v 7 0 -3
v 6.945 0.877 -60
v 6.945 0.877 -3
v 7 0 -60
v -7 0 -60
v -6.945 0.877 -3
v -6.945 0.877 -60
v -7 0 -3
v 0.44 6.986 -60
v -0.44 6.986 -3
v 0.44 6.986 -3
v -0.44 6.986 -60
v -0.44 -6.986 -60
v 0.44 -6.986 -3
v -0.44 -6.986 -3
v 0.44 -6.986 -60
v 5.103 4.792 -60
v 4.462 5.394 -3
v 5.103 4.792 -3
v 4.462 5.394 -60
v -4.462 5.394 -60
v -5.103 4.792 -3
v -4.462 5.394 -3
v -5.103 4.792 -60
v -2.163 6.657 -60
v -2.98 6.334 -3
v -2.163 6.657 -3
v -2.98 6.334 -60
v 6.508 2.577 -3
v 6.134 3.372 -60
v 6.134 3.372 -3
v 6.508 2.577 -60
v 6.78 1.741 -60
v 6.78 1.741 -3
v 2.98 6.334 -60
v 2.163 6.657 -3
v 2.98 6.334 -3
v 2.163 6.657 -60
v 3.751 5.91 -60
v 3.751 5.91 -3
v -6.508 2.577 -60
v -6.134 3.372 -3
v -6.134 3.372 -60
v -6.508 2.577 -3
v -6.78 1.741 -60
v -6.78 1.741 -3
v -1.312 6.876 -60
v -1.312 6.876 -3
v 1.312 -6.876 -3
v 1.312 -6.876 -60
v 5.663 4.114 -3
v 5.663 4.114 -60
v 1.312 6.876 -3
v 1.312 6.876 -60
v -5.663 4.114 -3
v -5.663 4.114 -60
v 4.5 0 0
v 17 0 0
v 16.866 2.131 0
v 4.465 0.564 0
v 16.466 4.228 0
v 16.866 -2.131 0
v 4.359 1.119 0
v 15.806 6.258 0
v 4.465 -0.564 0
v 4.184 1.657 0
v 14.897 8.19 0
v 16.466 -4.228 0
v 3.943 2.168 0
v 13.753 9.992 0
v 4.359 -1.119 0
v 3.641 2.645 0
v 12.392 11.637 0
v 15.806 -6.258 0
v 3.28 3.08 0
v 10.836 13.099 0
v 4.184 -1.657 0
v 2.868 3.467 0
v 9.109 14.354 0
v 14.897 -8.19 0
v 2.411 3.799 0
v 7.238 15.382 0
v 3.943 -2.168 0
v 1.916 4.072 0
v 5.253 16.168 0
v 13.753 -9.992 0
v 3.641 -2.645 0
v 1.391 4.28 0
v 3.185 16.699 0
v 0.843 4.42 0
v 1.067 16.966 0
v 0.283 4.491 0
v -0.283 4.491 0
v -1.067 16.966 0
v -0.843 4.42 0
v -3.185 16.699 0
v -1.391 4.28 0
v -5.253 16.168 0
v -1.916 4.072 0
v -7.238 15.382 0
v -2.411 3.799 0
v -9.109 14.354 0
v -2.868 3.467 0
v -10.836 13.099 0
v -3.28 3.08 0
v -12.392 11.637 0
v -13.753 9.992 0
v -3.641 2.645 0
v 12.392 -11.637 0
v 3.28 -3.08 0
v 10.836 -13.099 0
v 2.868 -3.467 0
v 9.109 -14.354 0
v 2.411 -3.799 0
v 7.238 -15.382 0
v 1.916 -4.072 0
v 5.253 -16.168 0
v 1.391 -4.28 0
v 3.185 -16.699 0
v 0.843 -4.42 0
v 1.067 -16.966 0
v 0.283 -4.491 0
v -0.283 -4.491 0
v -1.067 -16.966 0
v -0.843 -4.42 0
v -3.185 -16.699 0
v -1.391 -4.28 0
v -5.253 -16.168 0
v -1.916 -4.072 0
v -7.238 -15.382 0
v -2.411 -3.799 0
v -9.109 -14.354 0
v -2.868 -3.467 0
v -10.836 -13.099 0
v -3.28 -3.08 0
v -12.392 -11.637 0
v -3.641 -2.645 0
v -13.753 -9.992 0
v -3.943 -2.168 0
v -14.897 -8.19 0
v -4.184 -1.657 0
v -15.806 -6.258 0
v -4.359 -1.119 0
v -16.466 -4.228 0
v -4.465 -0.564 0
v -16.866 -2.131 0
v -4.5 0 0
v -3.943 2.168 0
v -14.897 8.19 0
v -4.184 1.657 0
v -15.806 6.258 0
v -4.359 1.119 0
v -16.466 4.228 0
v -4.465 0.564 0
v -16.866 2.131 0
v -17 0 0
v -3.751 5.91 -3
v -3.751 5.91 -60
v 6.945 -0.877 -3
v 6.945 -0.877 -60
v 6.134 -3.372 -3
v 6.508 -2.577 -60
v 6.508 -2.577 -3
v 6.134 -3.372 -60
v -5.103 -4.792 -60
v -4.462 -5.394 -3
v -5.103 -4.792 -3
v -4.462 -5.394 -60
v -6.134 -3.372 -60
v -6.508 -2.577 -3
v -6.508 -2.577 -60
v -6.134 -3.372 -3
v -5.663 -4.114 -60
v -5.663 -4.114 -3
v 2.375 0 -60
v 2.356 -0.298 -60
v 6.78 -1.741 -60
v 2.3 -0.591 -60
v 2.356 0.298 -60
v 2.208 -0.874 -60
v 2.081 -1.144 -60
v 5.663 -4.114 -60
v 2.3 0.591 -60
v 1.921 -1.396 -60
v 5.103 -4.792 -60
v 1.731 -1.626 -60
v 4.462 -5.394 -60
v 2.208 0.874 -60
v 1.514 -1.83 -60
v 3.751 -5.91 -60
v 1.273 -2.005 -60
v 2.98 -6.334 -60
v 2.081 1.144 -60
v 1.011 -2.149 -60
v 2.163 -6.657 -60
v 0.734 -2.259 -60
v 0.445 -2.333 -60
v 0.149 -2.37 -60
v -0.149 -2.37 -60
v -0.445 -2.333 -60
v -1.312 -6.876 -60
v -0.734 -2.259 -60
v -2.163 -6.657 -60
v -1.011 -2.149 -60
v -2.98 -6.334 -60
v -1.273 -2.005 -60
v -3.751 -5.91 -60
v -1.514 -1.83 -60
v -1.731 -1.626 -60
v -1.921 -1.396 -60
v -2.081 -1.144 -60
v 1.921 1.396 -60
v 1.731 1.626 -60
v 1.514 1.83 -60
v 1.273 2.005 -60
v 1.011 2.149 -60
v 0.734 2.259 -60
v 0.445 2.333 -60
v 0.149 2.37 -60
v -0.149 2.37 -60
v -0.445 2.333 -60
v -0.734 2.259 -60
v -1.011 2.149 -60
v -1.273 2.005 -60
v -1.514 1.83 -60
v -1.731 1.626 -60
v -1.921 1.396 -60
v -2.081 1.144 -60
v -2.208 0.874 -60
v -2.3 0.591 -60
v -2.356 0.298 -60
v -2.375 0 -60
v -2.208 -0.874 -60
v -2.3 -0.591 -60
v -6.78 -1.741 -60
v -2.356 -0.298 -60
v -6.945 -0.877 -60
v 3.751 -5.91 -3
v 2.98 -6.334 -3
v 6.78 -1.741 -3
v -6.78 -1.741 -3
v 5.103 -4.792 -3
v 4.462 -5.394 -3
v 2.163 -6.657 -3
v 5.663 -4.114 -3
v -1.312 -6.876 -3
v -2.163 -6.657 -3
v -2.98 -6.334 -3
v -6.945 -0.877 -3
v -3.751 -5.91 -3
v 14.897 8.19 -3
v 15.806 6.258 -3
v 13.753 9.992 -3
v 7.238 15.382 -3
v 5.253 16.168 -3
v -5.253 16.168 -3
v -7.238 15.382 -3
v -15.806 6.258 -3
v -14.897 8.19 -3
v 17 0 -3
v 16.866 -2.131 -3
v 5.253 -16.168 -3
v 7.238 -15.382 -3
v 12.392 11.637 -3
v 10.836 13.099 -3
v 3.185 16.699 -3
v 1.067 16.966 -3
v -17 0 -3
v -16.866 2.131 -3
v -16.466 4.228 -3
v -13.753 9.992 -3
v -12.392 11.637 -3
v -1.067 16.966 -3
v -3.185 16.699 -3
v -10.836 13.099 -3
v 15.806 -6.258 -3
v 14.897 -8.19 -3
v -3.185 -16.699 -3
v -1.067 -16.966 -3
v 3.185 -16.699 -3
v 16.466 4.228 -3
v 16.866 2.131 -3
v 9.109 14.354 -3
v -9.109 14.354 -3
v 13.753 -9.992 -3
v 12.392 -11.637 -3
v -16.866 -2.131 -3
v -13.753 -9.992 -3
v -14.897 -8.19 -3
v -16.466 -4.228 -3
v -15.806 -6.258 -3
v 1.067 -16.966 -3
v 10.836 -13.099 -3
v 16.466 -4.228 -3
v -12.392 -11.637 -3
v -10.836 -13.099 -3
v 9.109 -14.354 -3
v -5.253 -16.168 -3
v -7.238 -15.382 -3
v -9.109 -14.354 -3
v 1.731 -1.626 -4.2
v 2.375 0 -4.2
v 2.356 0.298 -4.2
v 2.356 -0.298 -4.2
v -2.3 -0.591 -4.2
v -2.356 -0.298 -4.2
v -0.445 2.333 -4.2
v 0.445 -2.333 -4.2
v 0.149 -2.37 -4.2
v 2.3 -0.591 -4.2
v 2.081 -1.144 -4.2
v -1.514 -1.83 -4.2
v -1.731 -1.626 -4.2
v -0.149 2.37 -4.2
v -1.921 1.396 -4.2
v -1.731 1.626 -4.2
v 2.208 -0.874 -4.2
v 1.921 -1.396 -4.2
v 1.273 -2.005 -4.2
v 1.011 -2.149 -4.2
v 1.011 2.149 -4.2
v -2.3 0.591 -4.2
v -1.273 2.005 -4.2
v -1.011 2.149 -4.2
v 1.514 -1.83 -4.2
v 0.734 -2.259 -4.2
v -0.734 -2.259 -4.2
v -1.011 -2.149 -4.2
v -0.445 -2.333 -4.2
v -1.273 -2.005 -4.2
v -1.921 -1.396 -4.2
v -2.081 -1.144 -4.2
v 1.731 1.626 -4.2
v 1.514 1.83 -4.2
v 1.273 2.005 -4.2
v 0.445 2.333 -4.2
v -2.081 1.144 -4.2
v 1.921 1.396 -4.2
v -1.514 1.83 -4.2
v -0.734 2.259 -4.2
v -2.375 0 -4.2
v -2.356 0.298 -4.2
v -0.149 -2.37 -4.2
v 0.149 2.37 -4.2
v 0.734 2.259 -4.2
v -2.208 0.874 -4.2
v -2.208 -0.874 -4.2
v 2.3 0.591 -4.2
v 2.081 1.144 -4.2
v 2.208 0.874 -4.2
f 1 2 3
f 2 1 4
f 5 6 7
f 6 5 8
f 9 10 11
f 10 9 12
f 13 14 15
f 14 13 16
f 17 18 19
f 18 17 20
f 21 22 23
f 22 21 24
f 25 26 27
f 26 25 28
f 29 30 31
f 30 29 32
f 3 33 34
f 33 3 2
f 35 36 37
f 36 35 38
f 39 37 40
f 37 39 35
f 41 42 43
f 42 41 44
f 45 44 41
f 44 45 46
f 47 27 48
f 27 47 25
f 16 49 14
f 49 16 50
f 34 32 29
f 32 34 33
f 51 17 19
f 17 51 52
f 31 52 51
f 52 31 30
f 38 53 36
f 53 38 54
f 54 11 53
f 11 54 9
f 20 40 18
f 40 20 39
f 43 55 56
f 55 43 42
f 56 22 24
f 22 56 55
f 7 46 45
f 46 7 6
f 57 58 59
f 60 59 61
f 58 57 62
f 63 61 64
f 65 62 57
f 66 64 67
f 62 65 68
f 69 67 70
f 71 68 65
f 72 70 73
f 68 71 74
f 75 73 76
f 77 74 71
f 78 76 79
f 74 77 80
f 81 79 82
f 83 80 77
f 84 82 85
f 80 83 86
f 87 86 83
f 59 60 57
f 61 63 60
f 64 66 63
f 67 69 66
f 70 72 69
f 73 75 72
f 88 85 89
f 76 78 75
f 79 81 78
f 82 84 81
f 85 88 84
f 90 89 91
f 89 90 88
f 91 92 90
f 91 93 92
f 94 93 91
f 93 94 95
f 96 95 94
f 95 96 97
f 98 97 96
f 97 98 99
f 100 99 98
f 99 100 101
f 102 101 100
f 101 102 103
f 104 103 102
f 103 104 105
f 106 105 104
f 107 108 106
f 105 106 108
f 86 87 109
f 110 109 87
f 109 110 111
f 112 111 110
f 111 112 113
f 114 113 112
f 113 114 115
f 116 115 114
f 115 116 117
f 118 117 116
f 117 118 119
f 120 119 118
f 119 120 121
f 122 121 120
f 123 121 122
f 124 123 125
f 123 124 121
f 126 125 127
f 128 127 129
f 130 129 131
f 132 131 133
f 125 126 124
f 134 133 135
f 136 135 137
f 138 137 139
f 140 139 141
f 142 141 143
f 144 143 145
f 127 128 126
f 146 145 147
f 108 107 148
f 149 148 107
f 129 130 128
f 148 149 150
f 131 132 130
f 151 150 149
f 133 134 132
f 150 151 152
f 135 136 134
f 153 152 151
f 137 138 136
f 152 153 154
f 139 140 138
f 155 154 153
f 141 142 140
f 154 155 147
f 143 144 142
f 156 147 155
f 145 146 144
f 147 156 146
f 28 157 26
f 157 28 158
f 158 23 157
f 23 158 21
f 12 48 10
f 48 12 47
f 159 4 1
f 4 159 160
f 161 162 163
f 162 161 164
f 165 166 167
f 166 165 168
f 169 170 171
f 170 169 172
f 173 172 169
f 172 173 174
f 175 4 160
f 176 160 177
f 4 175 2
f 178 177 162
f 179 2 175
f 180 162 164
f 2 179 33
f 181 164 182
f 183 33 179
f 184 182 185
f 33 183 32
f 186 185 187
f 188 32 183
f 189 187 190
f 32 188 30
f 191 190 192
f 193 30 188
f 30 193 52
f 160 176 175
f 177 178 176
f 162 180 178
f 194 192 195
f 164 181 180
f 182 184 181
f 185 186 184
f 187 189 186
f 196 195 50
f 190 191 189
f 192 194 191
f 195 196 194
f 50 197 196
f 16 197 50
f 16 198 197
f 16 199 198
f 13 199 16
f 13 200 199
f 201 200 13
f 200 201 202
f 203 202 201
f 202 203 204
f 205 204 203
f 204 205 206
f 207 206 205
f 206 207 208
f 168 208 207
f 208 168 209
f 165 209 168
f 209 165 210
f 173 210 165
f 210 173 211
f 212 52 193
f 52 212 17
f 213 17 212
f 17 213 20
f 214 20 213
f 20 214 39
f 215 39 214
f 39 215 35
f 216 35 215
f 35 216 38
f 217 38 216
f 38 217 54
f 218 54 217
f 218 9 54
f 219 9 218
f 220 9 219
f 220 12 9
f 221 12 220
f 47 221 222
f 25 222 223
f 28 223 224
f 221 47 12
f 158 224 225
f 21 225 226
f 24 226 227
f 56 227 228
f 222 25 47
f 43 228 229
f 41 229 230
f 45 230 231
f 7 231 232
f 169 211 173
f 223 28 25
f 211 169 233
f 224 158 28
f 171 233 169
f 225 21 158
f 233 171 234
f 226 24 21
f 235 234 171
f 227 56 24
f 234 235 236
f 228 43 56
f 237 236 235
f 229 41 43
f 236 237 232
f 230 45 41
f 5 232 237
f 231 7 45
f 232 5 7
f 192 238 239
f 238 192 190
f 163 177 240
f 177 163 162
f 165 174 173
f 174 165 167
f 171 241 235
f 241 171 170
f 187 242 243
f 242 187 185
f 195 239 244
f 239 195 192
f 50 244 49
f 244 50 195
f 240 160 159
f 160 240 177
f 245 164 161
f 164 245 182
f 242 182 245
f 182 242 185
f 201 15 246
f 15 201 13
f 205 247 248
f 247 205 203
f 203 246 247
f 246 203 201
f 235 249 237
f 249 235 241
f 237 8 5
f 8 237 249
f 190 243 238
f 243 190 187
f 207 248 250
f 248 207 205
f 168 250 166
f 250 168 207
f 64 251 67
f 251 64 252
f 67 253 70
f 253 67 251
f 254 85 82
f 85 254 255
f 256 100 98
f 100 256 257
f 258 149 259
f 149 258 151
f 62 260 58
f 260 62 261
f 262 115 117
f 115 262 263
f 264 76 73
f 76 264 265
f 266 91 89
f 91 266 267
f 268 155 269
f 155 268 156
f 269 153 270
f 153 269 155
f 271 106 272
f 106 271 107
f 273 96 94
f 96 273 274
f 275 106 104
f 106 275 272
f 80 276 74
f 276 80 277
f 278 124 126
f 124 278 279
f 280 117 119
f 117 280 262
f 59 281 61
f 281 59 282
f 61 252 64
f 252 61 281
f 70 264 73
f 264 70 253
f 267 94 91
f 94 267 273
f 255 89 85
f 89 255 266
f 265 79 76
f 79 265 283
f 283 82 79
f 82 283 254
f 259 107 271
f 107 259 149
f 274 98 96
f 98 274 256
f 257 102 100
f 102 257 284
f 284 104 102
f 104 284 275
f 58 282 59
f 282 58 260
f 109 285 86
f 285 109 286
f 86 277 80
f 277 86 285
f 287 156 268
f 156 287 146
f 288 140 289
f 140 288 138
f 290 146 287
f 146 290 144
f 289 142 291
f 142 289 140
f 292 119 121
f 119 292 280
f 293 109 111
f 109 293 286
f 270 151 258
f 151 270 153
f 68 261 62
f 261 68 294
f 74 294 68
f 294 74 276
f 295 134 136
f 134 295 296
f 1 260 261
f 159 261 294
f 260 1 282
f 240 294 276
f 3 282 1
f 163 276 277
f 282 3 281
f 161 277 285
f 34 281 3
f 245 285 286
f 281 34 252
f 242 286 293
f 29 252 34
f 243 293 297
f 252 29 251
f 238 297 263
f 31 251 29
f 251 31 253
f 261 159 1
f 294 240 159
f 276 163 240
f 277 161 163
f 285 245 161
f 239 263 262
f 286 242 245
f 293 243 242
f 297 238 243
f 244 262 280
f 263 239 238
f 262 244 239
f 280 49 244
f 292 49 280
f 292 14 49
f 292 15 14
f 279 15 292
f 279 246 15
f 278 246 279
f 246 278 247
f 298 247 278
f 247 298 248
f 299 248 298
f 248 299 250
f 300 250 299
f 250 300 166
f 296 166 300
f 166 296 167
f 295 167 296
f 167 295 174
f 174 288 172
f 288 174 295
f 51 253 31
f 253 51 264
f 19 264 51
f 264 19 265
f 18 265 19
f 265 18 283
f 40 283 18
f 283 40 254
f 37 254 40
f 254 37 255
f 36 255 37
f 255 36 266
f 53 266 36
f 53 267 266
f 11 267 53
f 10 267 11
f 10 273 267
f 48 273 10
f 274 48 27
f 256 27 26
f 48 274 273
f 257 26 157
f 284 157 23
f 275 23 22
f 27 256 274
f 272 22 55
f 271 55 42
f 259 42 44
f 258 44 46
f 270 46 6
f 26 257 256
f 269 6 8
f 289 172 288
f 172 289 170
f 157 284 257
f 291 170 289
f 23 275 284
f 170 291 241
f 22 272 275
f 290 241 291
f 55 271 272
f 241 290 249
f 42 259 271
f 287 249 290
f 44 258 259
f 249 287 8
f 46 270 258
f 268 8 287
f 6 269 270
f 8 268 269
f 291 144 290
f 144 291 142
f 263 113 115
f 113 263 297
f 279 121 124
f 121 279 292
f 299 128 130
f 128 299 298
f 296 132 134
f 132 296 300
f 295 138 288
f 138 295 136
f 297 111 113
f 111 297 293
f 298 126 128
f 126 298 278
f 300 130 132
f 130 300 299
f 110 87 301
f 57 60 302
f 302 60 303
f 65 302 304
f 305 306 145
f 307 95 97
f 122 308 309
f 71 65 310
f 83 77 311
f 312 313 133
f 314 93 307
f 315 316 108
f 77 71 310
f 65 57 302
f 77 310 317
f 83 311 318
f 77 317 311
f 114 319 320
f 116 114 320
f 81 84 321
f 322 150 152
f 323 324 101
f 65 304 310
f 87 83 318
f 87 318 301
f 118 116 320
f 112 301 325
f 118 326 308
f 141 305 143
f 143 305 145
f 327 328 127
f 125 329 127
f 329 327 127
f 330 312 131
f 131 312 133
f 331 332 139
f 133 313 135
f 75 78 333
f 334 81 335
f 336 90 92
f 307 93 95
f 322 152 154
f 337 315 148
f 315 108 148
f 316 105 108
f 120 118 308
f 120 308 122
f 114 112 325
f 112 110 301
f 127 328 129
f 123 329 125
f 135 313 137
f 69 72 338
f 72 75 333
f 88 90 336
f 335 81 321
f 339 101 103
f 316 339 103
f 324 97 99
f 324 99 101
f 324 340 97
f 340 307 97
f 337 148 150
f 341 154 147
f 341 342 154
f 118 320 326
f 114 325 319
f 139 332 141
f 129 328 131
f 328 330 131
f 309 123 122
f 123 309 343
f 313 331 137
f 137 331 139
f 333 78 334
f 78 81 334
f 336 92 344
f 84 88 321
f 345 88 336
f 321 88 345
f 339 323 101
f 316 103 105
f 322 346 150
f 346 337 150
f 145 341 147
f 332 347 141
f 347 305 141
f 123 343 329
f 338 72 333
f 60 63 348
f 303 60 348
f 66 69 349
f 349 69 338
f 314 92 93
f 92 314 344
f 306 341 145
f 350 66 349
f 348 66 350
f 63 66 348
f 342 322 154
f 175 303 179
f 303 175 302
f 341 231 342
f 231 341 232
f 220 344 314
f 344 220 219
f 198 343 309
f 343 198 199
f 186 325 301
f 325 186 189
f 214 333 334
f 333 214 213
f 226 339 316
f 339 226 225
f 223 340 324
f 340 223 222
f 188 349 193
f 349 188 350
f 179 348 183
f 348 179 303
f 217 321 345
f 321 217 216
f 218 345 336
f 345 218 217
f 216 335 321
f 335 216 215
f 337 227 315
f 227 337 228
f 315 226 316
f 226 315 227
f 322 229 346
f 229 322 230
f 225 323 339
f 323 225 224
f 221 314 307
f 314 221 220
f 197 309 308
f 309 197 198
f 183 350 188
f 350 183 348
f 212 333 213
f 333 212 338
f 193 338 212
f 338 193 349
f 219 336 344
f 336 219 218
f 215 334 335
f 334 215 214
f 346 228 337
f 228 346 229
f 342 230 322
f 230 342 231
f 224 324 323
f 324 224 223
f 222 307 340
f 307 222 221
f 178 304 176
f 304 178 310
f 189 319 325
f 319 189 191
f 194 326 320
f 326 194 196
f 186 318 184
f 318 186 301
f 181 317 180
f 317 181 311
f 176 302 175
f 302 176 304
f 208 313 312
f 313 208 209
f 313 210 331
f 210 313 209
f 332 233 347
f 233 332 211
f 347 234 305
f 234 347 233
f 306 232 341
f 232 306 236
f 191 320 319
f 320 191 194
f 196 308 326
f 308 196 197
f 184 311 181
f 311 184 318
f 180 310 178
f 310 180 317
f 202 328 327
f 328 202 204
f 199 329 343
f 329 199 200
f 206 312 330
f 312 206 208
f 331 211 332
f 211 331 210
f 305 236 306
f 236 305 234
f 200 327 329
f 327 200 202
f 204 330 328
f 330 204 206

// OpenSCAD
$fn = 50;


difference() {
	union() {
		translate(v = [0, 0, -60.0000000000]) {
			cylinder(h = 60, r = 7.0000000000);
		}
		translate(v = [0, 0, -3.0000000000]) {
			cylinder(h = 3, r = 17.0000000000);
		}
	}
	union() {
		translate(v = [0, 0, 0]) {
			rotate(a = [0, 0, 0]) {
				difference() {
					union() {
						#translate(v = [0, 0, -60.0000000000]) {
							cylinder(h = 60, r = 2.2500000000);
						}
						#translate(v = [0, 0, -4.2000000000]) {
							cylinder(h = 4.2000000000, r = 7.0000000000, r1 = 2.3750000000, r2 = 4.5000000000);
						}
						#translate(v = [0, 0, -60.0000000000]) {
							cylinder(h = 60, r = 2.3750000000);
						}
						#translate(v = [0, 0, -60.0000000000]) {
							cylinder(h = 60, r = 2.2500000000);
						}
					}
					union();
				}
			}
		}
	}
}
